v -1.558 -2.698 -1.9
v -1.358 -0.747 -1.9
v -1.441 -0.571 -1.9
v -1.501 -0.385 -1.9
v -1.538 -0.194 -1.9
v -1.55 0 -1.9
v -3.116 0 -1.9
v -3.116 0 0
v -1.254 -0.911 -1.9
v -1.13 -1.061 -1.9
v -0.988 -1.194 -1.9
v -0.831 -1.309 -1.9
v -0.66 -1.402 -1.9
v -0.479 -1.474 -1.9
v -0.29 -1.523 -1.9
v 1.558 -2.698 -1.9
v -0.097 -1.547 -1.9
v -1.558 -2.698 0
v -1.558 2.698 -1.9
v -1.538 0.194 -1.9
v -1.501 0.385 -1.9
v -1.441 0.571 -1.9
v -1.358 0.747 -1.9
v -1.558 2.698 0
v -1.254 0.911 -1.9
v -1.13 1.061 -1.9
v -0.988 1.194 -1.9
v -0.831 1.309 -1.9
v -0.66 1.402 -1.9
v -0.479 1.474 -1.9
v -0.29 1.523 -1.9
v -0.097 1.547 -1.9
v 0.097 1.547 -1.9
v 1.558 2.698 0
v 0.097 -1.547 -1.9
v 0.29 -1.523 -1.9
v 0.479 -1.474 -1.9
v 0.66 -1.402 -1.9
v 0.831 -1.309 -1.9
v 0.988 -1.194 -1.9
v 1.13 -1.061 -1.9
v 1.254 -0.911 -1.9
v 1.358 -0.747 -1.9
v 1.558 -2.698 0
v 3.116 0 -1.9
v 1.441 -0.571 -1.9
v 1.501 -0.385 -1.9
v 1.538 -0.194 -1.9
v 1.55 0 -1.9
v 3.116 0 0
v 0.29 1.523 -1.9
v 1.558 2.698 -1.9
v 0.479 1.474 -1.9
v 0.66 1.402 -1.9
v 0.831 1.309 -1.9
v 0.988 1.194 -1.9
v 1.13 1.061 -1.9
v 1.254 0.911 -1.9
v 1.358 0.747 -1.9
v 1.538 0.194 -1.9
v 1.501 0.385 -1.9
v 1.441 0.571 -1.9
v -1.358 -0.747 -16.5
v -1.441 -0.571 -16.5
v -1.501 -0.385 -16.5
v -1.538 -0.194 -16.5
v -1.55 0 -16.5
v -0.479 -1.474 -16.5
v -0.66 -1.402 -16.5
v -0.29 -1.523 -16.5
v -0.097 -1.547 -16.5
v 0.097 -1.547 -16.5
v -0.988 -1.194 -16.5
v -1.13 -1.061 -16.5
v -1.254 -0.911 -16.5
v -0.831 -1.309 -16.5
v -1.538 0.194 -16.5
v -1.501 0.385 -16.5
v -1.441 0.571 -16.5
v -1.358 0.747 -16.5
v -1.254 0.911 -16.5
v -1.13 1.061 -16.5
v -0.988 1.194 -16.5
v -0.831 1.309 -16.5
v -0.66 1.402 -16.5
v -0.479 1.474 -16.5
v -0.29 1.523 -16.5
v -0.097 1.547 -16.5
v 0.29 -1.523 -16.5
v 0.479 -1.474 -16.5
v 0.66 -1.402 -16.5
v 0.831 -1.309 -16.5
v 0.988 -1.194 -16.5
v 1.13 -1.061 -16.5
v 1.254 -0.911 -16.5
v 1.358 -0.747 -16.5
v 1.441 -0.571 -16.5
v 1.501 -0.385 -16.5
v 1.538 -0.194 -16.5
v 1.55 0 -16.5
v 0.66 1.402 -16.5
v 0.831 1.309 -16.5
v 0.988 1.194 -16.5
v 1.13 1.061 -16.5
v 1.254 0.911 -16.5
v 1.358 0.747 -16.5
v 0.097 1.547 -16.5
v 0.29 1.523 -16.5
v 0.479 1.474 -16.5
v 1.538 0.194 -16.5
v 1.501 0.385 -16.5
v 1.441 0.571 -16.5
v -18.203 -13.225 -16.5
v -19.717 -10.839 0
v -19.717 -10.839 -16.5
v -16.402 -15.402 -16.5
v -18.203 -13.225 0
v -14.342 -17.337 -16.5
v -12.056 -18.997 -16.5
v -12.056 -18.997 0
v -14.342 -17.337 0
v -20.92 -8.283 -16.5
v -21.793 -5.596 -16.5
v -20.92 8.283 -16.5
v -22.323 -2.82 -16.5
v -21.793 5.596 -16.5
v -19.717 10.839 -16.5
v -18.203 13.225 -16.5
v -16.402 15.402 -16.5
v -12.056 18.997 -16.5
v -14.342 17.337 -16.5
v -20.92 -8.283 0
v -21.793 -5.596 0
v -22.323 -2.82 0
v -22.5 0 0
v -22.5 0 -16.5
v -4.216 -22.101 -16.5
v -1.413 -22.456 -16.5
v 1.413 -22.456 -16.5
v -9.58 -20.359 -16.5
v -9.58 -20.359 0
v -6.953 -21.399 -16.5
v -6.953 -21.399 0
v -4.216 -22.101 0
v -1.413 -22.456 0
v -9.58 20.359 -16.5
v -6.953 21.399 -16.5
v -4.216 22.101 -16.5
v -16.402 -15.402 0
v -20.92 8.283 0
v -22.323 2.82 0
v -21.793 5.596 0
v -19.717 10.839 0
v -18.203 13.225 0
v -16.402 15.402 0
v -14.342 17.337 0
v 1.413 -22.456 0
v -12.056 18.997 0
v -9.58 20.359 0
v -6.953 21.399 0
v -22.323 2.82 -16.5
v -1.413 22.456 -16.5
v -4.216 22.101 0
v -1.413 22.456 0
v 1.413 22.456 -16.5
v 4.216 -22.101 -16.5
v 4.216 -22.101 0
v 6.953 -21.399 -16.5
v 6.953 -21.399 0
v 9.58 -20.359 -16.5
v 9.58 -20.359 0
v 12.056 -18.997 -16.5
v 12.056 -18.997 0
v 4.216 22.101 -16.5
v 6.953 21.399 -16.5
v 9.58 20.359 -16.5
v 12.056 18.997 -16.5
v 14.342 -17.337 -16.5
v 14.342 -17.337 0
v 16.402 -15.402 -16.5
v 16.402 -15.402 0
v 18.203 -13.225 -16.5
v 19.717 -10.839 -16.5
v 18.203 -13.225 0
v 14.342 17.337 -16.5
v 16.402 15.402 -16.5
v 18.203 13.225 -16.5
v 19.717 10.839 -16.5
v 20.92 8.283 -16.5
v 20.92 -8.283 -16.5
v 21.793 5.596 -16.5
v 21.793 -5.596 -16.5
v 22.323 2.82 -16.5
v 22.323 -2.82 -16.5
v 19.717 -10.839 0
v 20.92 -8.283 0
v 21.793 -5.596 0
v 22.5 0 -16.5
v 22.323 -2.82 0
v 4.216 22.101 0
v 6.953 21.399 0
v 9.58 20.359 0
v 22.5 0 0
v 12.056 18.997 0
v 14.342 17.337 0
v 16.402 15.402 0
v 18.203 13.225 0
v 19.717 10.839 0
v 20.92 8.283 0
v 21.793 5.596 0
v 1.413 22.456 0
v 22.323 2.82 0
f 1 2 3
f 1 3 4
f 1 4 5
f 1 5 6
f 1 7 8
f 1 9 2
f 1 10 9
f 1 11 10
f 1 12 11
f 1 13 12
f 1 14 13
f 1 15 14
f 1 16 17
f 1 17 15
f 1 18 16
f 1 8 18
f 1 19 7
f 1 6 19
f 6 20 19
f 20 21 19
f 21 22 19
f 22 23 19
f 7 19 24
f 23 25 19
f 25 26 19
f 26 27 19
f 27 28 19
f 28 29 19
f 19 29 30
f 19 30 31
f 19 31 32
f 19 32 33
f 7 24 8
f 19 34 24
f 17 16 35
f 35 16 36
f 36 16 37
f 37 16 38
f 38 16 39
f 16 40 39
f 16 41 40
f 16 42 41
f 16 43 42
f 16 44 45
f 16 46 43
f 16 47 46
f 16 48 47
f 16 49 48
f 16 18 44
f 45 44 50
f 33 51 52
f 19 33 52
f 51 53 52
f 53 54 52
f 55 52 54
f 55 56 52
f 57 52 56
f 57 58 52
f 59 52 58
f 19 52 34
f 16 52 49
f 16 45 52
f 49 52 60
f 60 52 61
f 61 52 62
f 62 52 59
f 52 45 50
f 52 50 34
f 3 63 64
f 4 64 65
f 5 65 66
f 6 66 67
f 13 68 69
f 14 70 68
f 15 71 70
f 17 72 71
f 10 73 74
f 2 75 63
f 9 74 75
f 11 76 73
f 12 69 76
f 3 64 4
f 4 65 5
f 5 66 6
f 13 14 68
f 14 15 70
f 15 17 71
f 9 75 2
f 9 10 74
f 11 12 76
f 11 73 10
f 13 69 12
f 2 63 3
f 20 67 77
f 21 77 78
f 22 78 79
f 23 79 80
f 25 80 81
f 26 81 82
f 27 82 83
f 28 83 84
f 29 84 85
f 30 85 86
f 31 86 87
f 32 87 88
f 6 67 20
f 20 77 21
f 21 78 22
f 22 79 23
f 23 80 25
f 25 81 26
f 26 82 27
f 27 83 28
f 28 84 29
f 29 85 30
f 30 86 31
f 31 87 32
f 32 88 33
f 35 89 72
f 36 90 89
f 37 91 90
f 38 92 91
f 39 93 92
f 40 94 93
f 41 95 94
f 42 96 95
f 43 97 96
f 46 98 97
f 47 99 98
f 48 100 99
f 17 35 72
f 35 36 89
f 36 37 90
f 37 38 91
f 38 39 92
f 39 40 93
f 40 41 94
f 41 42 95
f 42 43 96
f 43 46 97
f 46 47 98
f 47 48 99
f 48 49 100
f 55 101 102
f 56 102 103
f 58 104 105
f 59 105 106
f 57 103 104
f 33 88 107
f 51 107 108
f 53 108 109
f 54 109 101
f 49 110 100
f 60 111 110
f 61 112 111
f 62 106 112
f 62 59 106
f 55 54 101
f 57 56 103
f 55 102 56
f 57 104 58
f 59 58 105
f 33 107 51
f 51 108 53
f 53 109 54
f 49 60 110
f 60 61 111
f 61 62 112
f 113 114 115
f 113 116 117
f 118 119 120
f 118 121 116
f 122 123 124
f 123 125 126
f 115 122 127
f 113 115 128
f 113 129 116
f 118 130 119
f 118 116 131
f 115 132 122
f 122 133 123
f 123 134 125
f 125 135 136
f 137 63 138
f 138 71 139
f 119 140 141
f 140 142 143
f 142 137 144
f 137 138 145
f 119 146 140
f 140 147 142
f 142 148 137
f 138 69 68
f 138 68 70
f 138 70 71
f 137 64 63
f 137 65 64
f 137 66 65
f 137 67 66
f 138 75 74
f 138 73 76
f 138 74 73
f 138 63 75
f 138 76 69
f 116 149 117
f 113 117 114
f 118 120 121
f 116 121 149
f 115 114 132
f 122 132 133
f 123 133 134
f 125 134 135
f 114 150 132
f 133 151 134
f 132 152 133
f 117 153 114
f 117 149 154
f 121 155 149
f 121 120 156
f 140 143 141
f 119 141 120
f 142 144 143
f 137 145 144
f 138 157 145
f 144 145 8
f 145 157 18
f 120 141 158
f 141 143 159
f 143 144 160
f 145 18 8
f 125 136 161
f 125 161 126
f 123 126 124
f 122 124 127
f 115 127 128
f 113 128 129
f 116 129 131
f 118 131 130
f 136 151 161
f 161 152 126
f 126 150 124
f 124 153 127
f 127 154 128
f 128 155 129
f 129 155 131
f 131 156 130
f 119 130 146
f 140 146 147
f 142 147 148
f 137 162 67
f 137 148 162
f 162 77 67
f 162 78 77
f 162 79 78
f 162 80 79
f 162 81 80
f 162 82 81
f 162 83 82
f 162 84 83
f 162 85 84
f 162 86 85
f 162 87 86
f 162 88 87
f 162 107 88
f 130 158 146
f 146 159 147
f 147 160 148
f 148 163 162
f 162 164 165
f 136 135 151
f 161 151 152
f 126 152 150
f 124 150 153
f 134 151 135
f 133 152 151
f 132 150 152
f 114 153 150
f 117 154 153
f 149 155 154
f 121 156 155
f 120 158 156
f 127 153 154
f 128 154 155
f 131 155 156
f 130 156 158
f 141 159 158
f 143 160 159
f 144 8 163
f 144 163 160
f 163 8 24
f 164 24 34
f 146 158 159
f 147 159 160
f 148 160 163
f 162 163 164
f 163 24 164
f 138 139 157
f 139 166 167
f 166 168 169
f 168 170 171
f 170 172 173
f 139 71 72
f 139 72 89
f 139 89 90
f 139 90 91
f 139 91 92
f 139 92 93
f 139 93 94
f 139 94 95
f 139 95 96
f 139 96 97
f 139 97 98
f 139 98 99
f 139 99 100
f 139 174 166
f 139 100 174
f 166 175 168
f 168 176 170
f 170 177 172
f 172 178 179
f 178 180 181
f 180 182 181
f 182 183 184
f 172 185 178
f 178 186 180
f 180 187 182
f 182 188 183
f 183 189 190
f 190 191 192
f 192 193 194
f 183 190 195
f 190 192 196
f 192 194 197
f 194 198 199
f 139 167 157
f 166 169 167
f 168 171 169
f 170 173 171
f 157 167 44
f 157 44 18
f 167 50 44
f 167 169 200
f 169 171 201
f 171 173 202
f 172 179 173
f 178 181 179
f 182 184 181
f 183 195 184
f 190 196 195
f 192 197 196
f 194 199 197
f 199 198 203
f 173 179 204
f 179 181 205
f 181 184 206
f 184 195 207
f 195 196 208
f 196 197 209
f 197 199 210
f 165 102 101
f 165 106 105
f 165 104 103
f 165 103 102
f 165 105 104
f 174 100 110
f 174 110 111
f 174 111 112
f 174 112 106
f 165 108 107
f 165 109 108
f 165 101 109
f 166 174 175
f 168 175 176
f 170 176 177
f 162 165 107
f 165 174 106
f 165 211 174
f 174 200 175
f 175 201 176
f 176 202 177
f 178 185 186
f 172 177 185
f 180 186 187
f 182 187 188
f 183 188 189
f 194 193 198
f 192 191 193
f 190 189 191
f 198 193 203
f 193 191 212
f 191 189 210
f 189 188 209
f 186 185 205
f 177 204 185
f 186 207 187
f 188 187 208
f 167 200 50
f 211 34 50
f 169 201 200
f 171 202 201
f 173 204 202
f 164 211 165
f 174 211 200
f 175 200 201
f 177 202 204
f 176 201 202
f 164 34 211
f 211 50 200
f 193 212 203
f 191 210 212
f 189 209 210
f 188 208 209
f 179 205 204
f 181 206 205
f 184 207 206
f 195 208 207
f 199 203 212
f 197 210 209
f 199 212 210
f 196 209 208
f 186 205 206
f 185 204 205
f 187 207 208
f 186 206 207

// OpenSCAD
$fn = 50;


difference() {
	union() {
		translate(v = [0, 0, -16.5000000000]) {
			cylinder(h = 16.5000000000, r = 22.5000000000);
		}
	}
	union() {
		translate(v = [0, 0, 0]) {
			rotate(a = [0, 0, 0]) {
				difference() {
					union() {
						translate(v = [0, 0, -1.9000000000]) {
							linear_extrude(height = 1.9000000000) {
								polygon(points = [[3.1158000000, 0.0000000000], [1.5579000000, 2.6983619531], [-1.5579000000, 2.6983619531], [-3.1158000000, 0.0000000000], [-1.5579000000, -2.6983619531], [1.5579000000, -2.6983619531]]);
							}
						}
					}
					union();
				}
			}
		}
		#translate(v = [0, 0, -100.0000000000]) {
			cylinder(h = 200, r = 1.5500000000);
		}
	}
}
